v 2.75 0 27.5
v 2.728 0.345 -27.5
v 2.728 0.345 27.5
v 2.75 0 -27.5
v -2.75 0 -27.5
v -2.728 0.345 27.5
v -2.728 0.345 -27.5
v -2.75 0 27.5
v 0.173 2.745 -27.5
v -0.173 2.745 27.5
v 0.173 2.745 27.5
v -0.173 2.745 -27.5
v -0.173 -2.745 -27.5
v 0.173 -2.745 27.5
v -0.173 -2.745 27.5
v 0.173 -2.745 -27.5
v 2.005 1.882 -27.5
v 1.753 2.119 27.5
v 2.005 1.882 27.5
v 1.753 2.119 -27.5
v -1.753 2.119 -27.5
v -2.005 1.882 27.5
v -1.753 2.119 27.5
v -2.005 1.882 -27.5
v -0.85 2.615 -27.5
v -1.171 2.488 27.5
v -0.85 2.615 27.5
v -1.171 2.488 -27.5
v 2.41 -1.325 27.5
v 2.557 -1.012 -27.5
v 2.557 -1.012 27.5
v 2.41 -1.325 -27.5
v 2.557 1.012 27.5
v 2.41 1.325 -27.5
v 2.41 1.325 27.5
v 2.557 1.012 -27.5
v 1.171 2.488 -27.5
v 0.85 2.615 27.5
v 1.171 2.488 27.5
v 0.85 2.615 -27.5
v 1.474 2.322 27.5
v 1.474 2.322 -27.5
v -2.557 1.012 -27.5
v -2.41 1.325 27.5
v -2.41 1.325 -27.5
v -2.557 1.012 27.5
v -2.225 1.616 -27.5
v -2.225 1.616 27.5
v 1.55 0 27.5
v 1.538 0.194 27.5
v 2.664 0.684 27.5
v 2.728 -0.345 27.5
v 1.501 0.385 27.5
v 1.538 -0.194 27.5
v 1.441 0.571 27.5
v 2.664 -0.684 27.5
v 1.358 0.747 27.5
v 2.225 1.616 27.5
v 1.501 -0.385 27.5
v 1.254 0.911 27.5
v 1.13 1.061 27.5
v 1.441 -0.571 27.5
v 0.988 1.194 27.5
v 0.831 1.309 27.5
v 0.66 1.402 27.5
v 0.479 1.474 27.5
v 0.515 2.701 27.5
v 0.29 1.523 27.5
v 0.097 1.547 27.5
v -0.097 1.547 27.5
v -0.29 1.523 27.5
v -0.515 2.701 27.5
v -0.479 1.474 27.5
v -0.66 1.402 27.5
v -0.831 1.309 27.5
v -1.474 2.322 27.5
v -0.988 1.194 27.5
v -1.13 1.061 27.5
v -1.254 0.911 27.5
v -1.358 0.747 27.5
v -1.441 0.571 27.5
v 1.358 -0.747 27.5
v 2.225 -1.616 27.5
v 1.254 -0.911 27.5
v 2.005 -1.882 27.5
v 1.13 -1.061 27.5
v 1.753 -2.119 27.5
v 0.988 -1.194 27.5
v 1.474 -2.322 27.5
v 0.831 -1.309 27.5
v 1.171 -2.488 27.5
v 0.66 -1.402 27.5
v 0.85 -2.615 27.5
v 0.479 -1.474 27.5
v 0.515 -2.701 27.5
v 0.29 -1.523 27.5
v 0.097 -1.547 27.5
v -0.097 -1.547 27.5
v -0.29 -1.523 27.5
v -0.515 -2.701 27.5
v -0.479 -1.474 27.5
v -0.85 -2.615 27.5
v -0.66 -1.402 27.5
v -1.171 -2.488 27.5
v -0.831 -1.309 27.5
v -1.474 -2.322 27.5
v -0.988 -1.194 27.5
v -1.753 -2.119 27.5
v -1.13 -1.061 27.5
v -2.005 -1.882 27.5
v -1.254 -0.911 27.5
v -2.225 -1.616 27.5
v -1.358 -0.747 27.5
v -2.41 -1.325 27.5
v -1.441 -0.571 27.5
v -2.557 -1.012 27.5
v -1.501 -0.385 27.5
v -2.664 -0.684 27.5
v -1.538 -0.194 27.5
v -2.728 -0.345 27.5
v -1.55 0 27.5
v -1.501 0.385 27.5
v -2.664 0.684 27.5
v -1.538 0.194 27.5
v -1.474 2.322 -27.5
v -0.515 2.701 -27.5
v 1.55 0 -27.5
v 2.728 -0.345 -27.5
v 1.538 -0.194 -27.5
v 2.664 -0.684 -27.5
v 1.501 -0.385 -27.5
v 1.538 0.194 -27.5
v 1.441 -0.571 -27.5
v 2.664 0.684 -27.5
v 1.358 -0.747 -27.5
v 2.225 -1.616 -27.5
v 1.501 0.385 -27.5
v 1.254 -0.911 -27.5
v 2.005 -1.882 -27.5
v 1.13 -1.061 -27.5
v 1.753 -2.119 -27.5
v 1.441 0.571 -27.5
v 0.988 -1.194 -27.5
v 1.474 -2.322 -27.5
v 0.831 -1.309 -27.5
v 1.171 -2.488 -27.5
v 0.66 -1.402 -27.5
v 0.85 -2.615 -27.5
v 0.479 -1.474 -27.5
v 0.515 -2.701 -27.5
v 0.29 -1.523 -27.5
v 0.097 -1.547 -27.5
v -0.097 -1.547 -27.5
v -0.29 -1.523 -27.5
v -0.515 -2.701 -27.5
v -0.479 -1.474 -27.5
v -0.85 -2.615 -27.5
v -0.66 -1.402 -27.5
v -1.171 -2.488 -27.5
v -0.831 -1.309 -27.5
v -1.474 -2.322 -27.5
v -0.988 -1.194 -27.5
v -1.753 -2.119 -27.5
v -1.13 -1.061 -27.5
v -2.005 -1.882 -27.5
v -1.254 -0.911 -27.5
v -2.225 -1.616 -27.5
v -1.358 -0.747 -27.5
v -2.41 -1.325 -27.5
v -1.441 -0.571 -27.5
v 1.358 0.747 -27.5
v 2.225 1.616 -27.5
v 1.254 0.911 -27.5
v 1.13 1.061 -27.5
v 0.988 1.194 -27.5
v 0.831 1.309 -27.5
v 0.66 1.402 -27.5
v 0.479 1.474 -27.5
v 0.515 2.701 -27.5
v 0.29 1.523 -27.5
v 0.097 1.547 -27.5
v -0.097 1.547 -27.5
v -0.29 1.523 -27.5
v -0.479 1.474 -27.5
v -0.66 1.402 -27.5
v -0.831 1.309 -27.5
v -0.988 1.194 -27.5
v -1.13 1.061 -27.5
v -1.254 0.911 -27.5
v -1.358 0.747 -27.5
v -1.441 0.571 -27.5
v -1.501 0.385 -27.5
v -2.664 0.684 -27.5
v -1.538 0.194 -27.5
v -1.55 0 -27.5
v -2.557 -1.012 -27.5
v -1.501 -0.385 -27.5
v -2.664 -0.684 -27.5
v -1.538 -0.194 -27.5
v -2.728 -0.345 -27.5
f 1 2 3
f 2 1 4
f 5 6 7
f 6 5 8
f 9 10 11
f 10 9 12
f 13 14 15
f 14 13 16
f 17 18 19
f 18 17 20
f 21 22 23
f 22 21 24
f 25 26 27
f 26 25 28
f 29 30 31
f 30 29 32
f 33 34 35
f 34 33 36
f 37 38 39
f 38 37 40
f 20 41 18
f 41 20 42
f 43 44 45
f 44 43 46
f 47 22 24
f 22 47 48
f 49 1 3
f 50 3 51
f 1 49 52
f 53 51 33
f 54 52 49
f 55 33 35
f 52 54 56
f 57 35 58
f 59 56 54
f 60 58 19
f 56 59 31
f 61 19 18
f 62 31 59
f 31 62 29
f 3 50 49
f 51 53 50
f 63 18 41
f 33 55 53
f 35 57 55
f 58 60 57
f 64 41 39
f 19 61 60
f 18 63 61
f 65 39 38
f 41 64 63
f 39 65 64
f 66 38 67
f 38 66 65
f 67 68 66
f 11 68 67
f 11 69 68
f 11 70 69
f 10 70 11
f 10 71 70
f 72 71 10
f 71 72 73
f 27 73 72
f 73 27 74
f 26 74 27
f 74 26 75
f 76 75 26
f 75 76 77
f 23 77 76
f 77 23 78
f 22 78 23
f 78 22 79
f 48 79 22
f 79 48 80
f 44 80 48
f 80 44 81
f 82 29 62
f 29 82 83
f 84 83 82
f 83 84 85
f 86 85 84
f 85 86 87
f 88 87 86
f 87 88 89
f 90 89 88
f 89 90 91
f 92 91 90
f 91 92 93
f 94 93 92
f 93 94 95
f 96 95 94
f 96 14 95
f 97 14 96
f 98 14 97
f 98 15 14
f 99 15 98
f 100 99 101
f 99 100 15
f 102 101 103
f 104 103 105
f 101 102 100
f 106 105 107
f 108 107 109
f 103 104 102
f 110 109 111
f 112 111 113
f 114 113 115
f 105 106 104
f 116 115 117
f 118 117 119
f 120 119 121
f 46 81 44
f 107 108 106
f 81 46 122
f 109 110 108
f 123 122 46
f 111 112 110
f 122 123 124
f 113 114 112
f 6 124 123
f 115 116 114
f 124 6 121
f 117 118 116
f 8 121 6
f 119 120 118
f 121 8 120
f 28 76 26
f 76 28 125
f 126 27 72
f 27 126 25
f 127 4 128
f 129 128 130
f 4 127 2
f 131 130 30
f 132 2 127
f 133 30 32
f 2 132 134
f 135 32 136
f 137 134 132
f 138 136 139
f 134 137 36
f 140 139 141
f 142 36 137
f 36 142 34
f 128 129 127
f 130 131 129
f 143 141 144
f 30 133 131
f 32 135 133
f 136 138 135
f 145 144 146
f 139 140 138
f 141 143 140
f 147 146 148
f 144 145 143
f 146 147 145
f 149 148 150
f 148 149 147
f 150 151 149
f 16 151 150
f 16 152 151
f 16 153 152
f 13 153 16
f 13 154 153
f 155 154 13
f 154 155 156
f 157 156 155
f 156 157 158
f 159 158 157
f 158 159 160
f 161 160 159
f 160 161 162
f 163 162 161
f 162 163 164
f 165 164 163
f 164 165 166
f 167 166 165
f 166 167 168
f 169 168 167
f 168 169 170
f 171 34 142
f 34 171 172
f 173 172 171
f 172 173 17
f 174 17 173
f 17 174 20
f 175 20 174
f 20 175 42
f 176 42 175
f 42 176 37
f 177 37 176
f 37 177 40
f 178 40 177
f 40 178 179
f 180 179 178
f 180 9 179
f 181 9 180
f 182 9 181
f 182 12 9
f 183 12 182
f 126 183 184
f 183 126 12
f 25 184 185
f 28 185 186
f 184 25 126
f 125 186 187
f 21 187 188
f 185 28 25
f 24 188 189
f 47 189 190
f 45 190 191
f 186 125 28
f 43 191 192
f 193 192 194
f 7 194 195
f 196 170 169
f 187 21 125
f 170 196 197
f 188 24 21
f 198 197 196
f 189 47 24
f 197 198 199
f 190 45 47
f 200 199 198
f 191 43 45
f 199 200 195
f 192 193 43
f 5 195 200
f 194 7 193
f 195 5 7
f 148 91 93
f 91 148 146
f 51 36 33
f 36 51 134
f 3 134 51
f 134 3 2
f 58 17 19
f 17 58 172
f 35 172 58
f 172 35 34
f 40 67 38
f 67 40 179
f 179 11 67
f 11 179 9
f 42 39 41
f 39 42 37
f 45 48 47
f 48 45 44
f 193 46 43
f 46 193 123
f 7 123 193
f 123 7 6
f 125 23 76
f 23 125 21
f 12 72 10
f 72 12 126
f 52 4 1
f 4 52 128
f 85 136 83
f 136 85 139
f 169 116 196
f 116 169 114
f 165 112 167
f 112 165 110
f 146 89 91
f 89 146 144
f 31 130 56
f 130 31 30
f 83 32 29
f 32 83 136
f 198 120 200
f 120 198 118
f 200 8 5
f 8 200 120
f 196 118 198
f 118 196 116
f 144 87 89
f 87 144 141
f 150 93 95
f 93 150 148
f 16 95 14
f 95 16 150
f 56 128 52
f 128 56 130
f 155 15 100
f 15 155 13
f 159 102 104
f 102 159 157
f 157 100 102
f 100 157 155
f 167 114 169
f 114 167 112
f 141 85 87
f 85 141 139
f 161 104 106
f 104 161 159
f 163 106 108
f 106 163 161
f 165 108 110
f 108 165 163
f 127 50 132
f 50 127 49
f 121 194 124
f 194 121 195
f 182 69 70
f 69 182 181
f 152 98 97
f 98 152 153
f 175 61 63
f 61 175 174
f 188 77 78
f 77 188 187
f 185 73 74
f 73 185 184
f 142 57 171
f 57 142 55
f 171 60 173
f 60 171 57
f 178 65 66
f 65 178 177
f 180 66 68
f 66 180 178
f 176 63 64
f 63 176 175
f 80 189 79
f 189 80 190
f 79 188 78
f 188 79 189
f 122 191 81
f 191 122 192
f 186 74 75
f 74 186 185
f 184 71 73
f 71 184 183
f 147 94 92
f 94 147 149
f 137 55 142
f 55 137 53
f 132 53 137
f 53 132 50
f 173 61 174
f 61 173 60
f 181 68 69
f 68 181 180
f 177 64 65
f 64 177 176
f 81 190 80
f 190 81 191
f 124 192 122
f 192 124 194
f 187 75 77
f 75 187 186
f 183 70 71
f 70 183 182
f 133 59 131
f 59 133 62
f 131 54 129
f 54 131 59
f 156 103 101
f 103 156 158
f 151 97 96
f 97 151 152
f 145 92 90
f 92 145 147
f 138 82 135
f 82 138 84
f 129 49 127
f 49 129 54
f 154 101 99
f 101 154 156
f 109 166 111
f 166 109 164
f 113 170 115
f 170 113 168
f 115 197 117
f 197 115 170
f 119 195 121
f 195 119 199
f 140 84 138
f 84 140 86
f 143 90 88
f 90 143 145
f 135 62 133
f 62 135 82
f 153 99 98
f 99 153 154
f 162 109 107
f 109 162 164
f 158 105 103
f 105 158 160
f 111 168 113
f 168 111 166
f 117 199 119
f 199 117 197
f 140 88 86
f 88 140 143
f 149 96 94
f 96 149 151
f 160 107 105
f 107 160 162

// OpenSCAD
$fn = 50;


difference() {
	union() {
		translate(v = [0, 0, -27.5000000000]) {
			cylinder(h = 55, r = 2.7500000000);
		}
	}
	union() {
		translate(v = [0, 0, -100.0000000000]) {
			cylinder(h = 200, r = 1.5500000000);
		}
	}
}
